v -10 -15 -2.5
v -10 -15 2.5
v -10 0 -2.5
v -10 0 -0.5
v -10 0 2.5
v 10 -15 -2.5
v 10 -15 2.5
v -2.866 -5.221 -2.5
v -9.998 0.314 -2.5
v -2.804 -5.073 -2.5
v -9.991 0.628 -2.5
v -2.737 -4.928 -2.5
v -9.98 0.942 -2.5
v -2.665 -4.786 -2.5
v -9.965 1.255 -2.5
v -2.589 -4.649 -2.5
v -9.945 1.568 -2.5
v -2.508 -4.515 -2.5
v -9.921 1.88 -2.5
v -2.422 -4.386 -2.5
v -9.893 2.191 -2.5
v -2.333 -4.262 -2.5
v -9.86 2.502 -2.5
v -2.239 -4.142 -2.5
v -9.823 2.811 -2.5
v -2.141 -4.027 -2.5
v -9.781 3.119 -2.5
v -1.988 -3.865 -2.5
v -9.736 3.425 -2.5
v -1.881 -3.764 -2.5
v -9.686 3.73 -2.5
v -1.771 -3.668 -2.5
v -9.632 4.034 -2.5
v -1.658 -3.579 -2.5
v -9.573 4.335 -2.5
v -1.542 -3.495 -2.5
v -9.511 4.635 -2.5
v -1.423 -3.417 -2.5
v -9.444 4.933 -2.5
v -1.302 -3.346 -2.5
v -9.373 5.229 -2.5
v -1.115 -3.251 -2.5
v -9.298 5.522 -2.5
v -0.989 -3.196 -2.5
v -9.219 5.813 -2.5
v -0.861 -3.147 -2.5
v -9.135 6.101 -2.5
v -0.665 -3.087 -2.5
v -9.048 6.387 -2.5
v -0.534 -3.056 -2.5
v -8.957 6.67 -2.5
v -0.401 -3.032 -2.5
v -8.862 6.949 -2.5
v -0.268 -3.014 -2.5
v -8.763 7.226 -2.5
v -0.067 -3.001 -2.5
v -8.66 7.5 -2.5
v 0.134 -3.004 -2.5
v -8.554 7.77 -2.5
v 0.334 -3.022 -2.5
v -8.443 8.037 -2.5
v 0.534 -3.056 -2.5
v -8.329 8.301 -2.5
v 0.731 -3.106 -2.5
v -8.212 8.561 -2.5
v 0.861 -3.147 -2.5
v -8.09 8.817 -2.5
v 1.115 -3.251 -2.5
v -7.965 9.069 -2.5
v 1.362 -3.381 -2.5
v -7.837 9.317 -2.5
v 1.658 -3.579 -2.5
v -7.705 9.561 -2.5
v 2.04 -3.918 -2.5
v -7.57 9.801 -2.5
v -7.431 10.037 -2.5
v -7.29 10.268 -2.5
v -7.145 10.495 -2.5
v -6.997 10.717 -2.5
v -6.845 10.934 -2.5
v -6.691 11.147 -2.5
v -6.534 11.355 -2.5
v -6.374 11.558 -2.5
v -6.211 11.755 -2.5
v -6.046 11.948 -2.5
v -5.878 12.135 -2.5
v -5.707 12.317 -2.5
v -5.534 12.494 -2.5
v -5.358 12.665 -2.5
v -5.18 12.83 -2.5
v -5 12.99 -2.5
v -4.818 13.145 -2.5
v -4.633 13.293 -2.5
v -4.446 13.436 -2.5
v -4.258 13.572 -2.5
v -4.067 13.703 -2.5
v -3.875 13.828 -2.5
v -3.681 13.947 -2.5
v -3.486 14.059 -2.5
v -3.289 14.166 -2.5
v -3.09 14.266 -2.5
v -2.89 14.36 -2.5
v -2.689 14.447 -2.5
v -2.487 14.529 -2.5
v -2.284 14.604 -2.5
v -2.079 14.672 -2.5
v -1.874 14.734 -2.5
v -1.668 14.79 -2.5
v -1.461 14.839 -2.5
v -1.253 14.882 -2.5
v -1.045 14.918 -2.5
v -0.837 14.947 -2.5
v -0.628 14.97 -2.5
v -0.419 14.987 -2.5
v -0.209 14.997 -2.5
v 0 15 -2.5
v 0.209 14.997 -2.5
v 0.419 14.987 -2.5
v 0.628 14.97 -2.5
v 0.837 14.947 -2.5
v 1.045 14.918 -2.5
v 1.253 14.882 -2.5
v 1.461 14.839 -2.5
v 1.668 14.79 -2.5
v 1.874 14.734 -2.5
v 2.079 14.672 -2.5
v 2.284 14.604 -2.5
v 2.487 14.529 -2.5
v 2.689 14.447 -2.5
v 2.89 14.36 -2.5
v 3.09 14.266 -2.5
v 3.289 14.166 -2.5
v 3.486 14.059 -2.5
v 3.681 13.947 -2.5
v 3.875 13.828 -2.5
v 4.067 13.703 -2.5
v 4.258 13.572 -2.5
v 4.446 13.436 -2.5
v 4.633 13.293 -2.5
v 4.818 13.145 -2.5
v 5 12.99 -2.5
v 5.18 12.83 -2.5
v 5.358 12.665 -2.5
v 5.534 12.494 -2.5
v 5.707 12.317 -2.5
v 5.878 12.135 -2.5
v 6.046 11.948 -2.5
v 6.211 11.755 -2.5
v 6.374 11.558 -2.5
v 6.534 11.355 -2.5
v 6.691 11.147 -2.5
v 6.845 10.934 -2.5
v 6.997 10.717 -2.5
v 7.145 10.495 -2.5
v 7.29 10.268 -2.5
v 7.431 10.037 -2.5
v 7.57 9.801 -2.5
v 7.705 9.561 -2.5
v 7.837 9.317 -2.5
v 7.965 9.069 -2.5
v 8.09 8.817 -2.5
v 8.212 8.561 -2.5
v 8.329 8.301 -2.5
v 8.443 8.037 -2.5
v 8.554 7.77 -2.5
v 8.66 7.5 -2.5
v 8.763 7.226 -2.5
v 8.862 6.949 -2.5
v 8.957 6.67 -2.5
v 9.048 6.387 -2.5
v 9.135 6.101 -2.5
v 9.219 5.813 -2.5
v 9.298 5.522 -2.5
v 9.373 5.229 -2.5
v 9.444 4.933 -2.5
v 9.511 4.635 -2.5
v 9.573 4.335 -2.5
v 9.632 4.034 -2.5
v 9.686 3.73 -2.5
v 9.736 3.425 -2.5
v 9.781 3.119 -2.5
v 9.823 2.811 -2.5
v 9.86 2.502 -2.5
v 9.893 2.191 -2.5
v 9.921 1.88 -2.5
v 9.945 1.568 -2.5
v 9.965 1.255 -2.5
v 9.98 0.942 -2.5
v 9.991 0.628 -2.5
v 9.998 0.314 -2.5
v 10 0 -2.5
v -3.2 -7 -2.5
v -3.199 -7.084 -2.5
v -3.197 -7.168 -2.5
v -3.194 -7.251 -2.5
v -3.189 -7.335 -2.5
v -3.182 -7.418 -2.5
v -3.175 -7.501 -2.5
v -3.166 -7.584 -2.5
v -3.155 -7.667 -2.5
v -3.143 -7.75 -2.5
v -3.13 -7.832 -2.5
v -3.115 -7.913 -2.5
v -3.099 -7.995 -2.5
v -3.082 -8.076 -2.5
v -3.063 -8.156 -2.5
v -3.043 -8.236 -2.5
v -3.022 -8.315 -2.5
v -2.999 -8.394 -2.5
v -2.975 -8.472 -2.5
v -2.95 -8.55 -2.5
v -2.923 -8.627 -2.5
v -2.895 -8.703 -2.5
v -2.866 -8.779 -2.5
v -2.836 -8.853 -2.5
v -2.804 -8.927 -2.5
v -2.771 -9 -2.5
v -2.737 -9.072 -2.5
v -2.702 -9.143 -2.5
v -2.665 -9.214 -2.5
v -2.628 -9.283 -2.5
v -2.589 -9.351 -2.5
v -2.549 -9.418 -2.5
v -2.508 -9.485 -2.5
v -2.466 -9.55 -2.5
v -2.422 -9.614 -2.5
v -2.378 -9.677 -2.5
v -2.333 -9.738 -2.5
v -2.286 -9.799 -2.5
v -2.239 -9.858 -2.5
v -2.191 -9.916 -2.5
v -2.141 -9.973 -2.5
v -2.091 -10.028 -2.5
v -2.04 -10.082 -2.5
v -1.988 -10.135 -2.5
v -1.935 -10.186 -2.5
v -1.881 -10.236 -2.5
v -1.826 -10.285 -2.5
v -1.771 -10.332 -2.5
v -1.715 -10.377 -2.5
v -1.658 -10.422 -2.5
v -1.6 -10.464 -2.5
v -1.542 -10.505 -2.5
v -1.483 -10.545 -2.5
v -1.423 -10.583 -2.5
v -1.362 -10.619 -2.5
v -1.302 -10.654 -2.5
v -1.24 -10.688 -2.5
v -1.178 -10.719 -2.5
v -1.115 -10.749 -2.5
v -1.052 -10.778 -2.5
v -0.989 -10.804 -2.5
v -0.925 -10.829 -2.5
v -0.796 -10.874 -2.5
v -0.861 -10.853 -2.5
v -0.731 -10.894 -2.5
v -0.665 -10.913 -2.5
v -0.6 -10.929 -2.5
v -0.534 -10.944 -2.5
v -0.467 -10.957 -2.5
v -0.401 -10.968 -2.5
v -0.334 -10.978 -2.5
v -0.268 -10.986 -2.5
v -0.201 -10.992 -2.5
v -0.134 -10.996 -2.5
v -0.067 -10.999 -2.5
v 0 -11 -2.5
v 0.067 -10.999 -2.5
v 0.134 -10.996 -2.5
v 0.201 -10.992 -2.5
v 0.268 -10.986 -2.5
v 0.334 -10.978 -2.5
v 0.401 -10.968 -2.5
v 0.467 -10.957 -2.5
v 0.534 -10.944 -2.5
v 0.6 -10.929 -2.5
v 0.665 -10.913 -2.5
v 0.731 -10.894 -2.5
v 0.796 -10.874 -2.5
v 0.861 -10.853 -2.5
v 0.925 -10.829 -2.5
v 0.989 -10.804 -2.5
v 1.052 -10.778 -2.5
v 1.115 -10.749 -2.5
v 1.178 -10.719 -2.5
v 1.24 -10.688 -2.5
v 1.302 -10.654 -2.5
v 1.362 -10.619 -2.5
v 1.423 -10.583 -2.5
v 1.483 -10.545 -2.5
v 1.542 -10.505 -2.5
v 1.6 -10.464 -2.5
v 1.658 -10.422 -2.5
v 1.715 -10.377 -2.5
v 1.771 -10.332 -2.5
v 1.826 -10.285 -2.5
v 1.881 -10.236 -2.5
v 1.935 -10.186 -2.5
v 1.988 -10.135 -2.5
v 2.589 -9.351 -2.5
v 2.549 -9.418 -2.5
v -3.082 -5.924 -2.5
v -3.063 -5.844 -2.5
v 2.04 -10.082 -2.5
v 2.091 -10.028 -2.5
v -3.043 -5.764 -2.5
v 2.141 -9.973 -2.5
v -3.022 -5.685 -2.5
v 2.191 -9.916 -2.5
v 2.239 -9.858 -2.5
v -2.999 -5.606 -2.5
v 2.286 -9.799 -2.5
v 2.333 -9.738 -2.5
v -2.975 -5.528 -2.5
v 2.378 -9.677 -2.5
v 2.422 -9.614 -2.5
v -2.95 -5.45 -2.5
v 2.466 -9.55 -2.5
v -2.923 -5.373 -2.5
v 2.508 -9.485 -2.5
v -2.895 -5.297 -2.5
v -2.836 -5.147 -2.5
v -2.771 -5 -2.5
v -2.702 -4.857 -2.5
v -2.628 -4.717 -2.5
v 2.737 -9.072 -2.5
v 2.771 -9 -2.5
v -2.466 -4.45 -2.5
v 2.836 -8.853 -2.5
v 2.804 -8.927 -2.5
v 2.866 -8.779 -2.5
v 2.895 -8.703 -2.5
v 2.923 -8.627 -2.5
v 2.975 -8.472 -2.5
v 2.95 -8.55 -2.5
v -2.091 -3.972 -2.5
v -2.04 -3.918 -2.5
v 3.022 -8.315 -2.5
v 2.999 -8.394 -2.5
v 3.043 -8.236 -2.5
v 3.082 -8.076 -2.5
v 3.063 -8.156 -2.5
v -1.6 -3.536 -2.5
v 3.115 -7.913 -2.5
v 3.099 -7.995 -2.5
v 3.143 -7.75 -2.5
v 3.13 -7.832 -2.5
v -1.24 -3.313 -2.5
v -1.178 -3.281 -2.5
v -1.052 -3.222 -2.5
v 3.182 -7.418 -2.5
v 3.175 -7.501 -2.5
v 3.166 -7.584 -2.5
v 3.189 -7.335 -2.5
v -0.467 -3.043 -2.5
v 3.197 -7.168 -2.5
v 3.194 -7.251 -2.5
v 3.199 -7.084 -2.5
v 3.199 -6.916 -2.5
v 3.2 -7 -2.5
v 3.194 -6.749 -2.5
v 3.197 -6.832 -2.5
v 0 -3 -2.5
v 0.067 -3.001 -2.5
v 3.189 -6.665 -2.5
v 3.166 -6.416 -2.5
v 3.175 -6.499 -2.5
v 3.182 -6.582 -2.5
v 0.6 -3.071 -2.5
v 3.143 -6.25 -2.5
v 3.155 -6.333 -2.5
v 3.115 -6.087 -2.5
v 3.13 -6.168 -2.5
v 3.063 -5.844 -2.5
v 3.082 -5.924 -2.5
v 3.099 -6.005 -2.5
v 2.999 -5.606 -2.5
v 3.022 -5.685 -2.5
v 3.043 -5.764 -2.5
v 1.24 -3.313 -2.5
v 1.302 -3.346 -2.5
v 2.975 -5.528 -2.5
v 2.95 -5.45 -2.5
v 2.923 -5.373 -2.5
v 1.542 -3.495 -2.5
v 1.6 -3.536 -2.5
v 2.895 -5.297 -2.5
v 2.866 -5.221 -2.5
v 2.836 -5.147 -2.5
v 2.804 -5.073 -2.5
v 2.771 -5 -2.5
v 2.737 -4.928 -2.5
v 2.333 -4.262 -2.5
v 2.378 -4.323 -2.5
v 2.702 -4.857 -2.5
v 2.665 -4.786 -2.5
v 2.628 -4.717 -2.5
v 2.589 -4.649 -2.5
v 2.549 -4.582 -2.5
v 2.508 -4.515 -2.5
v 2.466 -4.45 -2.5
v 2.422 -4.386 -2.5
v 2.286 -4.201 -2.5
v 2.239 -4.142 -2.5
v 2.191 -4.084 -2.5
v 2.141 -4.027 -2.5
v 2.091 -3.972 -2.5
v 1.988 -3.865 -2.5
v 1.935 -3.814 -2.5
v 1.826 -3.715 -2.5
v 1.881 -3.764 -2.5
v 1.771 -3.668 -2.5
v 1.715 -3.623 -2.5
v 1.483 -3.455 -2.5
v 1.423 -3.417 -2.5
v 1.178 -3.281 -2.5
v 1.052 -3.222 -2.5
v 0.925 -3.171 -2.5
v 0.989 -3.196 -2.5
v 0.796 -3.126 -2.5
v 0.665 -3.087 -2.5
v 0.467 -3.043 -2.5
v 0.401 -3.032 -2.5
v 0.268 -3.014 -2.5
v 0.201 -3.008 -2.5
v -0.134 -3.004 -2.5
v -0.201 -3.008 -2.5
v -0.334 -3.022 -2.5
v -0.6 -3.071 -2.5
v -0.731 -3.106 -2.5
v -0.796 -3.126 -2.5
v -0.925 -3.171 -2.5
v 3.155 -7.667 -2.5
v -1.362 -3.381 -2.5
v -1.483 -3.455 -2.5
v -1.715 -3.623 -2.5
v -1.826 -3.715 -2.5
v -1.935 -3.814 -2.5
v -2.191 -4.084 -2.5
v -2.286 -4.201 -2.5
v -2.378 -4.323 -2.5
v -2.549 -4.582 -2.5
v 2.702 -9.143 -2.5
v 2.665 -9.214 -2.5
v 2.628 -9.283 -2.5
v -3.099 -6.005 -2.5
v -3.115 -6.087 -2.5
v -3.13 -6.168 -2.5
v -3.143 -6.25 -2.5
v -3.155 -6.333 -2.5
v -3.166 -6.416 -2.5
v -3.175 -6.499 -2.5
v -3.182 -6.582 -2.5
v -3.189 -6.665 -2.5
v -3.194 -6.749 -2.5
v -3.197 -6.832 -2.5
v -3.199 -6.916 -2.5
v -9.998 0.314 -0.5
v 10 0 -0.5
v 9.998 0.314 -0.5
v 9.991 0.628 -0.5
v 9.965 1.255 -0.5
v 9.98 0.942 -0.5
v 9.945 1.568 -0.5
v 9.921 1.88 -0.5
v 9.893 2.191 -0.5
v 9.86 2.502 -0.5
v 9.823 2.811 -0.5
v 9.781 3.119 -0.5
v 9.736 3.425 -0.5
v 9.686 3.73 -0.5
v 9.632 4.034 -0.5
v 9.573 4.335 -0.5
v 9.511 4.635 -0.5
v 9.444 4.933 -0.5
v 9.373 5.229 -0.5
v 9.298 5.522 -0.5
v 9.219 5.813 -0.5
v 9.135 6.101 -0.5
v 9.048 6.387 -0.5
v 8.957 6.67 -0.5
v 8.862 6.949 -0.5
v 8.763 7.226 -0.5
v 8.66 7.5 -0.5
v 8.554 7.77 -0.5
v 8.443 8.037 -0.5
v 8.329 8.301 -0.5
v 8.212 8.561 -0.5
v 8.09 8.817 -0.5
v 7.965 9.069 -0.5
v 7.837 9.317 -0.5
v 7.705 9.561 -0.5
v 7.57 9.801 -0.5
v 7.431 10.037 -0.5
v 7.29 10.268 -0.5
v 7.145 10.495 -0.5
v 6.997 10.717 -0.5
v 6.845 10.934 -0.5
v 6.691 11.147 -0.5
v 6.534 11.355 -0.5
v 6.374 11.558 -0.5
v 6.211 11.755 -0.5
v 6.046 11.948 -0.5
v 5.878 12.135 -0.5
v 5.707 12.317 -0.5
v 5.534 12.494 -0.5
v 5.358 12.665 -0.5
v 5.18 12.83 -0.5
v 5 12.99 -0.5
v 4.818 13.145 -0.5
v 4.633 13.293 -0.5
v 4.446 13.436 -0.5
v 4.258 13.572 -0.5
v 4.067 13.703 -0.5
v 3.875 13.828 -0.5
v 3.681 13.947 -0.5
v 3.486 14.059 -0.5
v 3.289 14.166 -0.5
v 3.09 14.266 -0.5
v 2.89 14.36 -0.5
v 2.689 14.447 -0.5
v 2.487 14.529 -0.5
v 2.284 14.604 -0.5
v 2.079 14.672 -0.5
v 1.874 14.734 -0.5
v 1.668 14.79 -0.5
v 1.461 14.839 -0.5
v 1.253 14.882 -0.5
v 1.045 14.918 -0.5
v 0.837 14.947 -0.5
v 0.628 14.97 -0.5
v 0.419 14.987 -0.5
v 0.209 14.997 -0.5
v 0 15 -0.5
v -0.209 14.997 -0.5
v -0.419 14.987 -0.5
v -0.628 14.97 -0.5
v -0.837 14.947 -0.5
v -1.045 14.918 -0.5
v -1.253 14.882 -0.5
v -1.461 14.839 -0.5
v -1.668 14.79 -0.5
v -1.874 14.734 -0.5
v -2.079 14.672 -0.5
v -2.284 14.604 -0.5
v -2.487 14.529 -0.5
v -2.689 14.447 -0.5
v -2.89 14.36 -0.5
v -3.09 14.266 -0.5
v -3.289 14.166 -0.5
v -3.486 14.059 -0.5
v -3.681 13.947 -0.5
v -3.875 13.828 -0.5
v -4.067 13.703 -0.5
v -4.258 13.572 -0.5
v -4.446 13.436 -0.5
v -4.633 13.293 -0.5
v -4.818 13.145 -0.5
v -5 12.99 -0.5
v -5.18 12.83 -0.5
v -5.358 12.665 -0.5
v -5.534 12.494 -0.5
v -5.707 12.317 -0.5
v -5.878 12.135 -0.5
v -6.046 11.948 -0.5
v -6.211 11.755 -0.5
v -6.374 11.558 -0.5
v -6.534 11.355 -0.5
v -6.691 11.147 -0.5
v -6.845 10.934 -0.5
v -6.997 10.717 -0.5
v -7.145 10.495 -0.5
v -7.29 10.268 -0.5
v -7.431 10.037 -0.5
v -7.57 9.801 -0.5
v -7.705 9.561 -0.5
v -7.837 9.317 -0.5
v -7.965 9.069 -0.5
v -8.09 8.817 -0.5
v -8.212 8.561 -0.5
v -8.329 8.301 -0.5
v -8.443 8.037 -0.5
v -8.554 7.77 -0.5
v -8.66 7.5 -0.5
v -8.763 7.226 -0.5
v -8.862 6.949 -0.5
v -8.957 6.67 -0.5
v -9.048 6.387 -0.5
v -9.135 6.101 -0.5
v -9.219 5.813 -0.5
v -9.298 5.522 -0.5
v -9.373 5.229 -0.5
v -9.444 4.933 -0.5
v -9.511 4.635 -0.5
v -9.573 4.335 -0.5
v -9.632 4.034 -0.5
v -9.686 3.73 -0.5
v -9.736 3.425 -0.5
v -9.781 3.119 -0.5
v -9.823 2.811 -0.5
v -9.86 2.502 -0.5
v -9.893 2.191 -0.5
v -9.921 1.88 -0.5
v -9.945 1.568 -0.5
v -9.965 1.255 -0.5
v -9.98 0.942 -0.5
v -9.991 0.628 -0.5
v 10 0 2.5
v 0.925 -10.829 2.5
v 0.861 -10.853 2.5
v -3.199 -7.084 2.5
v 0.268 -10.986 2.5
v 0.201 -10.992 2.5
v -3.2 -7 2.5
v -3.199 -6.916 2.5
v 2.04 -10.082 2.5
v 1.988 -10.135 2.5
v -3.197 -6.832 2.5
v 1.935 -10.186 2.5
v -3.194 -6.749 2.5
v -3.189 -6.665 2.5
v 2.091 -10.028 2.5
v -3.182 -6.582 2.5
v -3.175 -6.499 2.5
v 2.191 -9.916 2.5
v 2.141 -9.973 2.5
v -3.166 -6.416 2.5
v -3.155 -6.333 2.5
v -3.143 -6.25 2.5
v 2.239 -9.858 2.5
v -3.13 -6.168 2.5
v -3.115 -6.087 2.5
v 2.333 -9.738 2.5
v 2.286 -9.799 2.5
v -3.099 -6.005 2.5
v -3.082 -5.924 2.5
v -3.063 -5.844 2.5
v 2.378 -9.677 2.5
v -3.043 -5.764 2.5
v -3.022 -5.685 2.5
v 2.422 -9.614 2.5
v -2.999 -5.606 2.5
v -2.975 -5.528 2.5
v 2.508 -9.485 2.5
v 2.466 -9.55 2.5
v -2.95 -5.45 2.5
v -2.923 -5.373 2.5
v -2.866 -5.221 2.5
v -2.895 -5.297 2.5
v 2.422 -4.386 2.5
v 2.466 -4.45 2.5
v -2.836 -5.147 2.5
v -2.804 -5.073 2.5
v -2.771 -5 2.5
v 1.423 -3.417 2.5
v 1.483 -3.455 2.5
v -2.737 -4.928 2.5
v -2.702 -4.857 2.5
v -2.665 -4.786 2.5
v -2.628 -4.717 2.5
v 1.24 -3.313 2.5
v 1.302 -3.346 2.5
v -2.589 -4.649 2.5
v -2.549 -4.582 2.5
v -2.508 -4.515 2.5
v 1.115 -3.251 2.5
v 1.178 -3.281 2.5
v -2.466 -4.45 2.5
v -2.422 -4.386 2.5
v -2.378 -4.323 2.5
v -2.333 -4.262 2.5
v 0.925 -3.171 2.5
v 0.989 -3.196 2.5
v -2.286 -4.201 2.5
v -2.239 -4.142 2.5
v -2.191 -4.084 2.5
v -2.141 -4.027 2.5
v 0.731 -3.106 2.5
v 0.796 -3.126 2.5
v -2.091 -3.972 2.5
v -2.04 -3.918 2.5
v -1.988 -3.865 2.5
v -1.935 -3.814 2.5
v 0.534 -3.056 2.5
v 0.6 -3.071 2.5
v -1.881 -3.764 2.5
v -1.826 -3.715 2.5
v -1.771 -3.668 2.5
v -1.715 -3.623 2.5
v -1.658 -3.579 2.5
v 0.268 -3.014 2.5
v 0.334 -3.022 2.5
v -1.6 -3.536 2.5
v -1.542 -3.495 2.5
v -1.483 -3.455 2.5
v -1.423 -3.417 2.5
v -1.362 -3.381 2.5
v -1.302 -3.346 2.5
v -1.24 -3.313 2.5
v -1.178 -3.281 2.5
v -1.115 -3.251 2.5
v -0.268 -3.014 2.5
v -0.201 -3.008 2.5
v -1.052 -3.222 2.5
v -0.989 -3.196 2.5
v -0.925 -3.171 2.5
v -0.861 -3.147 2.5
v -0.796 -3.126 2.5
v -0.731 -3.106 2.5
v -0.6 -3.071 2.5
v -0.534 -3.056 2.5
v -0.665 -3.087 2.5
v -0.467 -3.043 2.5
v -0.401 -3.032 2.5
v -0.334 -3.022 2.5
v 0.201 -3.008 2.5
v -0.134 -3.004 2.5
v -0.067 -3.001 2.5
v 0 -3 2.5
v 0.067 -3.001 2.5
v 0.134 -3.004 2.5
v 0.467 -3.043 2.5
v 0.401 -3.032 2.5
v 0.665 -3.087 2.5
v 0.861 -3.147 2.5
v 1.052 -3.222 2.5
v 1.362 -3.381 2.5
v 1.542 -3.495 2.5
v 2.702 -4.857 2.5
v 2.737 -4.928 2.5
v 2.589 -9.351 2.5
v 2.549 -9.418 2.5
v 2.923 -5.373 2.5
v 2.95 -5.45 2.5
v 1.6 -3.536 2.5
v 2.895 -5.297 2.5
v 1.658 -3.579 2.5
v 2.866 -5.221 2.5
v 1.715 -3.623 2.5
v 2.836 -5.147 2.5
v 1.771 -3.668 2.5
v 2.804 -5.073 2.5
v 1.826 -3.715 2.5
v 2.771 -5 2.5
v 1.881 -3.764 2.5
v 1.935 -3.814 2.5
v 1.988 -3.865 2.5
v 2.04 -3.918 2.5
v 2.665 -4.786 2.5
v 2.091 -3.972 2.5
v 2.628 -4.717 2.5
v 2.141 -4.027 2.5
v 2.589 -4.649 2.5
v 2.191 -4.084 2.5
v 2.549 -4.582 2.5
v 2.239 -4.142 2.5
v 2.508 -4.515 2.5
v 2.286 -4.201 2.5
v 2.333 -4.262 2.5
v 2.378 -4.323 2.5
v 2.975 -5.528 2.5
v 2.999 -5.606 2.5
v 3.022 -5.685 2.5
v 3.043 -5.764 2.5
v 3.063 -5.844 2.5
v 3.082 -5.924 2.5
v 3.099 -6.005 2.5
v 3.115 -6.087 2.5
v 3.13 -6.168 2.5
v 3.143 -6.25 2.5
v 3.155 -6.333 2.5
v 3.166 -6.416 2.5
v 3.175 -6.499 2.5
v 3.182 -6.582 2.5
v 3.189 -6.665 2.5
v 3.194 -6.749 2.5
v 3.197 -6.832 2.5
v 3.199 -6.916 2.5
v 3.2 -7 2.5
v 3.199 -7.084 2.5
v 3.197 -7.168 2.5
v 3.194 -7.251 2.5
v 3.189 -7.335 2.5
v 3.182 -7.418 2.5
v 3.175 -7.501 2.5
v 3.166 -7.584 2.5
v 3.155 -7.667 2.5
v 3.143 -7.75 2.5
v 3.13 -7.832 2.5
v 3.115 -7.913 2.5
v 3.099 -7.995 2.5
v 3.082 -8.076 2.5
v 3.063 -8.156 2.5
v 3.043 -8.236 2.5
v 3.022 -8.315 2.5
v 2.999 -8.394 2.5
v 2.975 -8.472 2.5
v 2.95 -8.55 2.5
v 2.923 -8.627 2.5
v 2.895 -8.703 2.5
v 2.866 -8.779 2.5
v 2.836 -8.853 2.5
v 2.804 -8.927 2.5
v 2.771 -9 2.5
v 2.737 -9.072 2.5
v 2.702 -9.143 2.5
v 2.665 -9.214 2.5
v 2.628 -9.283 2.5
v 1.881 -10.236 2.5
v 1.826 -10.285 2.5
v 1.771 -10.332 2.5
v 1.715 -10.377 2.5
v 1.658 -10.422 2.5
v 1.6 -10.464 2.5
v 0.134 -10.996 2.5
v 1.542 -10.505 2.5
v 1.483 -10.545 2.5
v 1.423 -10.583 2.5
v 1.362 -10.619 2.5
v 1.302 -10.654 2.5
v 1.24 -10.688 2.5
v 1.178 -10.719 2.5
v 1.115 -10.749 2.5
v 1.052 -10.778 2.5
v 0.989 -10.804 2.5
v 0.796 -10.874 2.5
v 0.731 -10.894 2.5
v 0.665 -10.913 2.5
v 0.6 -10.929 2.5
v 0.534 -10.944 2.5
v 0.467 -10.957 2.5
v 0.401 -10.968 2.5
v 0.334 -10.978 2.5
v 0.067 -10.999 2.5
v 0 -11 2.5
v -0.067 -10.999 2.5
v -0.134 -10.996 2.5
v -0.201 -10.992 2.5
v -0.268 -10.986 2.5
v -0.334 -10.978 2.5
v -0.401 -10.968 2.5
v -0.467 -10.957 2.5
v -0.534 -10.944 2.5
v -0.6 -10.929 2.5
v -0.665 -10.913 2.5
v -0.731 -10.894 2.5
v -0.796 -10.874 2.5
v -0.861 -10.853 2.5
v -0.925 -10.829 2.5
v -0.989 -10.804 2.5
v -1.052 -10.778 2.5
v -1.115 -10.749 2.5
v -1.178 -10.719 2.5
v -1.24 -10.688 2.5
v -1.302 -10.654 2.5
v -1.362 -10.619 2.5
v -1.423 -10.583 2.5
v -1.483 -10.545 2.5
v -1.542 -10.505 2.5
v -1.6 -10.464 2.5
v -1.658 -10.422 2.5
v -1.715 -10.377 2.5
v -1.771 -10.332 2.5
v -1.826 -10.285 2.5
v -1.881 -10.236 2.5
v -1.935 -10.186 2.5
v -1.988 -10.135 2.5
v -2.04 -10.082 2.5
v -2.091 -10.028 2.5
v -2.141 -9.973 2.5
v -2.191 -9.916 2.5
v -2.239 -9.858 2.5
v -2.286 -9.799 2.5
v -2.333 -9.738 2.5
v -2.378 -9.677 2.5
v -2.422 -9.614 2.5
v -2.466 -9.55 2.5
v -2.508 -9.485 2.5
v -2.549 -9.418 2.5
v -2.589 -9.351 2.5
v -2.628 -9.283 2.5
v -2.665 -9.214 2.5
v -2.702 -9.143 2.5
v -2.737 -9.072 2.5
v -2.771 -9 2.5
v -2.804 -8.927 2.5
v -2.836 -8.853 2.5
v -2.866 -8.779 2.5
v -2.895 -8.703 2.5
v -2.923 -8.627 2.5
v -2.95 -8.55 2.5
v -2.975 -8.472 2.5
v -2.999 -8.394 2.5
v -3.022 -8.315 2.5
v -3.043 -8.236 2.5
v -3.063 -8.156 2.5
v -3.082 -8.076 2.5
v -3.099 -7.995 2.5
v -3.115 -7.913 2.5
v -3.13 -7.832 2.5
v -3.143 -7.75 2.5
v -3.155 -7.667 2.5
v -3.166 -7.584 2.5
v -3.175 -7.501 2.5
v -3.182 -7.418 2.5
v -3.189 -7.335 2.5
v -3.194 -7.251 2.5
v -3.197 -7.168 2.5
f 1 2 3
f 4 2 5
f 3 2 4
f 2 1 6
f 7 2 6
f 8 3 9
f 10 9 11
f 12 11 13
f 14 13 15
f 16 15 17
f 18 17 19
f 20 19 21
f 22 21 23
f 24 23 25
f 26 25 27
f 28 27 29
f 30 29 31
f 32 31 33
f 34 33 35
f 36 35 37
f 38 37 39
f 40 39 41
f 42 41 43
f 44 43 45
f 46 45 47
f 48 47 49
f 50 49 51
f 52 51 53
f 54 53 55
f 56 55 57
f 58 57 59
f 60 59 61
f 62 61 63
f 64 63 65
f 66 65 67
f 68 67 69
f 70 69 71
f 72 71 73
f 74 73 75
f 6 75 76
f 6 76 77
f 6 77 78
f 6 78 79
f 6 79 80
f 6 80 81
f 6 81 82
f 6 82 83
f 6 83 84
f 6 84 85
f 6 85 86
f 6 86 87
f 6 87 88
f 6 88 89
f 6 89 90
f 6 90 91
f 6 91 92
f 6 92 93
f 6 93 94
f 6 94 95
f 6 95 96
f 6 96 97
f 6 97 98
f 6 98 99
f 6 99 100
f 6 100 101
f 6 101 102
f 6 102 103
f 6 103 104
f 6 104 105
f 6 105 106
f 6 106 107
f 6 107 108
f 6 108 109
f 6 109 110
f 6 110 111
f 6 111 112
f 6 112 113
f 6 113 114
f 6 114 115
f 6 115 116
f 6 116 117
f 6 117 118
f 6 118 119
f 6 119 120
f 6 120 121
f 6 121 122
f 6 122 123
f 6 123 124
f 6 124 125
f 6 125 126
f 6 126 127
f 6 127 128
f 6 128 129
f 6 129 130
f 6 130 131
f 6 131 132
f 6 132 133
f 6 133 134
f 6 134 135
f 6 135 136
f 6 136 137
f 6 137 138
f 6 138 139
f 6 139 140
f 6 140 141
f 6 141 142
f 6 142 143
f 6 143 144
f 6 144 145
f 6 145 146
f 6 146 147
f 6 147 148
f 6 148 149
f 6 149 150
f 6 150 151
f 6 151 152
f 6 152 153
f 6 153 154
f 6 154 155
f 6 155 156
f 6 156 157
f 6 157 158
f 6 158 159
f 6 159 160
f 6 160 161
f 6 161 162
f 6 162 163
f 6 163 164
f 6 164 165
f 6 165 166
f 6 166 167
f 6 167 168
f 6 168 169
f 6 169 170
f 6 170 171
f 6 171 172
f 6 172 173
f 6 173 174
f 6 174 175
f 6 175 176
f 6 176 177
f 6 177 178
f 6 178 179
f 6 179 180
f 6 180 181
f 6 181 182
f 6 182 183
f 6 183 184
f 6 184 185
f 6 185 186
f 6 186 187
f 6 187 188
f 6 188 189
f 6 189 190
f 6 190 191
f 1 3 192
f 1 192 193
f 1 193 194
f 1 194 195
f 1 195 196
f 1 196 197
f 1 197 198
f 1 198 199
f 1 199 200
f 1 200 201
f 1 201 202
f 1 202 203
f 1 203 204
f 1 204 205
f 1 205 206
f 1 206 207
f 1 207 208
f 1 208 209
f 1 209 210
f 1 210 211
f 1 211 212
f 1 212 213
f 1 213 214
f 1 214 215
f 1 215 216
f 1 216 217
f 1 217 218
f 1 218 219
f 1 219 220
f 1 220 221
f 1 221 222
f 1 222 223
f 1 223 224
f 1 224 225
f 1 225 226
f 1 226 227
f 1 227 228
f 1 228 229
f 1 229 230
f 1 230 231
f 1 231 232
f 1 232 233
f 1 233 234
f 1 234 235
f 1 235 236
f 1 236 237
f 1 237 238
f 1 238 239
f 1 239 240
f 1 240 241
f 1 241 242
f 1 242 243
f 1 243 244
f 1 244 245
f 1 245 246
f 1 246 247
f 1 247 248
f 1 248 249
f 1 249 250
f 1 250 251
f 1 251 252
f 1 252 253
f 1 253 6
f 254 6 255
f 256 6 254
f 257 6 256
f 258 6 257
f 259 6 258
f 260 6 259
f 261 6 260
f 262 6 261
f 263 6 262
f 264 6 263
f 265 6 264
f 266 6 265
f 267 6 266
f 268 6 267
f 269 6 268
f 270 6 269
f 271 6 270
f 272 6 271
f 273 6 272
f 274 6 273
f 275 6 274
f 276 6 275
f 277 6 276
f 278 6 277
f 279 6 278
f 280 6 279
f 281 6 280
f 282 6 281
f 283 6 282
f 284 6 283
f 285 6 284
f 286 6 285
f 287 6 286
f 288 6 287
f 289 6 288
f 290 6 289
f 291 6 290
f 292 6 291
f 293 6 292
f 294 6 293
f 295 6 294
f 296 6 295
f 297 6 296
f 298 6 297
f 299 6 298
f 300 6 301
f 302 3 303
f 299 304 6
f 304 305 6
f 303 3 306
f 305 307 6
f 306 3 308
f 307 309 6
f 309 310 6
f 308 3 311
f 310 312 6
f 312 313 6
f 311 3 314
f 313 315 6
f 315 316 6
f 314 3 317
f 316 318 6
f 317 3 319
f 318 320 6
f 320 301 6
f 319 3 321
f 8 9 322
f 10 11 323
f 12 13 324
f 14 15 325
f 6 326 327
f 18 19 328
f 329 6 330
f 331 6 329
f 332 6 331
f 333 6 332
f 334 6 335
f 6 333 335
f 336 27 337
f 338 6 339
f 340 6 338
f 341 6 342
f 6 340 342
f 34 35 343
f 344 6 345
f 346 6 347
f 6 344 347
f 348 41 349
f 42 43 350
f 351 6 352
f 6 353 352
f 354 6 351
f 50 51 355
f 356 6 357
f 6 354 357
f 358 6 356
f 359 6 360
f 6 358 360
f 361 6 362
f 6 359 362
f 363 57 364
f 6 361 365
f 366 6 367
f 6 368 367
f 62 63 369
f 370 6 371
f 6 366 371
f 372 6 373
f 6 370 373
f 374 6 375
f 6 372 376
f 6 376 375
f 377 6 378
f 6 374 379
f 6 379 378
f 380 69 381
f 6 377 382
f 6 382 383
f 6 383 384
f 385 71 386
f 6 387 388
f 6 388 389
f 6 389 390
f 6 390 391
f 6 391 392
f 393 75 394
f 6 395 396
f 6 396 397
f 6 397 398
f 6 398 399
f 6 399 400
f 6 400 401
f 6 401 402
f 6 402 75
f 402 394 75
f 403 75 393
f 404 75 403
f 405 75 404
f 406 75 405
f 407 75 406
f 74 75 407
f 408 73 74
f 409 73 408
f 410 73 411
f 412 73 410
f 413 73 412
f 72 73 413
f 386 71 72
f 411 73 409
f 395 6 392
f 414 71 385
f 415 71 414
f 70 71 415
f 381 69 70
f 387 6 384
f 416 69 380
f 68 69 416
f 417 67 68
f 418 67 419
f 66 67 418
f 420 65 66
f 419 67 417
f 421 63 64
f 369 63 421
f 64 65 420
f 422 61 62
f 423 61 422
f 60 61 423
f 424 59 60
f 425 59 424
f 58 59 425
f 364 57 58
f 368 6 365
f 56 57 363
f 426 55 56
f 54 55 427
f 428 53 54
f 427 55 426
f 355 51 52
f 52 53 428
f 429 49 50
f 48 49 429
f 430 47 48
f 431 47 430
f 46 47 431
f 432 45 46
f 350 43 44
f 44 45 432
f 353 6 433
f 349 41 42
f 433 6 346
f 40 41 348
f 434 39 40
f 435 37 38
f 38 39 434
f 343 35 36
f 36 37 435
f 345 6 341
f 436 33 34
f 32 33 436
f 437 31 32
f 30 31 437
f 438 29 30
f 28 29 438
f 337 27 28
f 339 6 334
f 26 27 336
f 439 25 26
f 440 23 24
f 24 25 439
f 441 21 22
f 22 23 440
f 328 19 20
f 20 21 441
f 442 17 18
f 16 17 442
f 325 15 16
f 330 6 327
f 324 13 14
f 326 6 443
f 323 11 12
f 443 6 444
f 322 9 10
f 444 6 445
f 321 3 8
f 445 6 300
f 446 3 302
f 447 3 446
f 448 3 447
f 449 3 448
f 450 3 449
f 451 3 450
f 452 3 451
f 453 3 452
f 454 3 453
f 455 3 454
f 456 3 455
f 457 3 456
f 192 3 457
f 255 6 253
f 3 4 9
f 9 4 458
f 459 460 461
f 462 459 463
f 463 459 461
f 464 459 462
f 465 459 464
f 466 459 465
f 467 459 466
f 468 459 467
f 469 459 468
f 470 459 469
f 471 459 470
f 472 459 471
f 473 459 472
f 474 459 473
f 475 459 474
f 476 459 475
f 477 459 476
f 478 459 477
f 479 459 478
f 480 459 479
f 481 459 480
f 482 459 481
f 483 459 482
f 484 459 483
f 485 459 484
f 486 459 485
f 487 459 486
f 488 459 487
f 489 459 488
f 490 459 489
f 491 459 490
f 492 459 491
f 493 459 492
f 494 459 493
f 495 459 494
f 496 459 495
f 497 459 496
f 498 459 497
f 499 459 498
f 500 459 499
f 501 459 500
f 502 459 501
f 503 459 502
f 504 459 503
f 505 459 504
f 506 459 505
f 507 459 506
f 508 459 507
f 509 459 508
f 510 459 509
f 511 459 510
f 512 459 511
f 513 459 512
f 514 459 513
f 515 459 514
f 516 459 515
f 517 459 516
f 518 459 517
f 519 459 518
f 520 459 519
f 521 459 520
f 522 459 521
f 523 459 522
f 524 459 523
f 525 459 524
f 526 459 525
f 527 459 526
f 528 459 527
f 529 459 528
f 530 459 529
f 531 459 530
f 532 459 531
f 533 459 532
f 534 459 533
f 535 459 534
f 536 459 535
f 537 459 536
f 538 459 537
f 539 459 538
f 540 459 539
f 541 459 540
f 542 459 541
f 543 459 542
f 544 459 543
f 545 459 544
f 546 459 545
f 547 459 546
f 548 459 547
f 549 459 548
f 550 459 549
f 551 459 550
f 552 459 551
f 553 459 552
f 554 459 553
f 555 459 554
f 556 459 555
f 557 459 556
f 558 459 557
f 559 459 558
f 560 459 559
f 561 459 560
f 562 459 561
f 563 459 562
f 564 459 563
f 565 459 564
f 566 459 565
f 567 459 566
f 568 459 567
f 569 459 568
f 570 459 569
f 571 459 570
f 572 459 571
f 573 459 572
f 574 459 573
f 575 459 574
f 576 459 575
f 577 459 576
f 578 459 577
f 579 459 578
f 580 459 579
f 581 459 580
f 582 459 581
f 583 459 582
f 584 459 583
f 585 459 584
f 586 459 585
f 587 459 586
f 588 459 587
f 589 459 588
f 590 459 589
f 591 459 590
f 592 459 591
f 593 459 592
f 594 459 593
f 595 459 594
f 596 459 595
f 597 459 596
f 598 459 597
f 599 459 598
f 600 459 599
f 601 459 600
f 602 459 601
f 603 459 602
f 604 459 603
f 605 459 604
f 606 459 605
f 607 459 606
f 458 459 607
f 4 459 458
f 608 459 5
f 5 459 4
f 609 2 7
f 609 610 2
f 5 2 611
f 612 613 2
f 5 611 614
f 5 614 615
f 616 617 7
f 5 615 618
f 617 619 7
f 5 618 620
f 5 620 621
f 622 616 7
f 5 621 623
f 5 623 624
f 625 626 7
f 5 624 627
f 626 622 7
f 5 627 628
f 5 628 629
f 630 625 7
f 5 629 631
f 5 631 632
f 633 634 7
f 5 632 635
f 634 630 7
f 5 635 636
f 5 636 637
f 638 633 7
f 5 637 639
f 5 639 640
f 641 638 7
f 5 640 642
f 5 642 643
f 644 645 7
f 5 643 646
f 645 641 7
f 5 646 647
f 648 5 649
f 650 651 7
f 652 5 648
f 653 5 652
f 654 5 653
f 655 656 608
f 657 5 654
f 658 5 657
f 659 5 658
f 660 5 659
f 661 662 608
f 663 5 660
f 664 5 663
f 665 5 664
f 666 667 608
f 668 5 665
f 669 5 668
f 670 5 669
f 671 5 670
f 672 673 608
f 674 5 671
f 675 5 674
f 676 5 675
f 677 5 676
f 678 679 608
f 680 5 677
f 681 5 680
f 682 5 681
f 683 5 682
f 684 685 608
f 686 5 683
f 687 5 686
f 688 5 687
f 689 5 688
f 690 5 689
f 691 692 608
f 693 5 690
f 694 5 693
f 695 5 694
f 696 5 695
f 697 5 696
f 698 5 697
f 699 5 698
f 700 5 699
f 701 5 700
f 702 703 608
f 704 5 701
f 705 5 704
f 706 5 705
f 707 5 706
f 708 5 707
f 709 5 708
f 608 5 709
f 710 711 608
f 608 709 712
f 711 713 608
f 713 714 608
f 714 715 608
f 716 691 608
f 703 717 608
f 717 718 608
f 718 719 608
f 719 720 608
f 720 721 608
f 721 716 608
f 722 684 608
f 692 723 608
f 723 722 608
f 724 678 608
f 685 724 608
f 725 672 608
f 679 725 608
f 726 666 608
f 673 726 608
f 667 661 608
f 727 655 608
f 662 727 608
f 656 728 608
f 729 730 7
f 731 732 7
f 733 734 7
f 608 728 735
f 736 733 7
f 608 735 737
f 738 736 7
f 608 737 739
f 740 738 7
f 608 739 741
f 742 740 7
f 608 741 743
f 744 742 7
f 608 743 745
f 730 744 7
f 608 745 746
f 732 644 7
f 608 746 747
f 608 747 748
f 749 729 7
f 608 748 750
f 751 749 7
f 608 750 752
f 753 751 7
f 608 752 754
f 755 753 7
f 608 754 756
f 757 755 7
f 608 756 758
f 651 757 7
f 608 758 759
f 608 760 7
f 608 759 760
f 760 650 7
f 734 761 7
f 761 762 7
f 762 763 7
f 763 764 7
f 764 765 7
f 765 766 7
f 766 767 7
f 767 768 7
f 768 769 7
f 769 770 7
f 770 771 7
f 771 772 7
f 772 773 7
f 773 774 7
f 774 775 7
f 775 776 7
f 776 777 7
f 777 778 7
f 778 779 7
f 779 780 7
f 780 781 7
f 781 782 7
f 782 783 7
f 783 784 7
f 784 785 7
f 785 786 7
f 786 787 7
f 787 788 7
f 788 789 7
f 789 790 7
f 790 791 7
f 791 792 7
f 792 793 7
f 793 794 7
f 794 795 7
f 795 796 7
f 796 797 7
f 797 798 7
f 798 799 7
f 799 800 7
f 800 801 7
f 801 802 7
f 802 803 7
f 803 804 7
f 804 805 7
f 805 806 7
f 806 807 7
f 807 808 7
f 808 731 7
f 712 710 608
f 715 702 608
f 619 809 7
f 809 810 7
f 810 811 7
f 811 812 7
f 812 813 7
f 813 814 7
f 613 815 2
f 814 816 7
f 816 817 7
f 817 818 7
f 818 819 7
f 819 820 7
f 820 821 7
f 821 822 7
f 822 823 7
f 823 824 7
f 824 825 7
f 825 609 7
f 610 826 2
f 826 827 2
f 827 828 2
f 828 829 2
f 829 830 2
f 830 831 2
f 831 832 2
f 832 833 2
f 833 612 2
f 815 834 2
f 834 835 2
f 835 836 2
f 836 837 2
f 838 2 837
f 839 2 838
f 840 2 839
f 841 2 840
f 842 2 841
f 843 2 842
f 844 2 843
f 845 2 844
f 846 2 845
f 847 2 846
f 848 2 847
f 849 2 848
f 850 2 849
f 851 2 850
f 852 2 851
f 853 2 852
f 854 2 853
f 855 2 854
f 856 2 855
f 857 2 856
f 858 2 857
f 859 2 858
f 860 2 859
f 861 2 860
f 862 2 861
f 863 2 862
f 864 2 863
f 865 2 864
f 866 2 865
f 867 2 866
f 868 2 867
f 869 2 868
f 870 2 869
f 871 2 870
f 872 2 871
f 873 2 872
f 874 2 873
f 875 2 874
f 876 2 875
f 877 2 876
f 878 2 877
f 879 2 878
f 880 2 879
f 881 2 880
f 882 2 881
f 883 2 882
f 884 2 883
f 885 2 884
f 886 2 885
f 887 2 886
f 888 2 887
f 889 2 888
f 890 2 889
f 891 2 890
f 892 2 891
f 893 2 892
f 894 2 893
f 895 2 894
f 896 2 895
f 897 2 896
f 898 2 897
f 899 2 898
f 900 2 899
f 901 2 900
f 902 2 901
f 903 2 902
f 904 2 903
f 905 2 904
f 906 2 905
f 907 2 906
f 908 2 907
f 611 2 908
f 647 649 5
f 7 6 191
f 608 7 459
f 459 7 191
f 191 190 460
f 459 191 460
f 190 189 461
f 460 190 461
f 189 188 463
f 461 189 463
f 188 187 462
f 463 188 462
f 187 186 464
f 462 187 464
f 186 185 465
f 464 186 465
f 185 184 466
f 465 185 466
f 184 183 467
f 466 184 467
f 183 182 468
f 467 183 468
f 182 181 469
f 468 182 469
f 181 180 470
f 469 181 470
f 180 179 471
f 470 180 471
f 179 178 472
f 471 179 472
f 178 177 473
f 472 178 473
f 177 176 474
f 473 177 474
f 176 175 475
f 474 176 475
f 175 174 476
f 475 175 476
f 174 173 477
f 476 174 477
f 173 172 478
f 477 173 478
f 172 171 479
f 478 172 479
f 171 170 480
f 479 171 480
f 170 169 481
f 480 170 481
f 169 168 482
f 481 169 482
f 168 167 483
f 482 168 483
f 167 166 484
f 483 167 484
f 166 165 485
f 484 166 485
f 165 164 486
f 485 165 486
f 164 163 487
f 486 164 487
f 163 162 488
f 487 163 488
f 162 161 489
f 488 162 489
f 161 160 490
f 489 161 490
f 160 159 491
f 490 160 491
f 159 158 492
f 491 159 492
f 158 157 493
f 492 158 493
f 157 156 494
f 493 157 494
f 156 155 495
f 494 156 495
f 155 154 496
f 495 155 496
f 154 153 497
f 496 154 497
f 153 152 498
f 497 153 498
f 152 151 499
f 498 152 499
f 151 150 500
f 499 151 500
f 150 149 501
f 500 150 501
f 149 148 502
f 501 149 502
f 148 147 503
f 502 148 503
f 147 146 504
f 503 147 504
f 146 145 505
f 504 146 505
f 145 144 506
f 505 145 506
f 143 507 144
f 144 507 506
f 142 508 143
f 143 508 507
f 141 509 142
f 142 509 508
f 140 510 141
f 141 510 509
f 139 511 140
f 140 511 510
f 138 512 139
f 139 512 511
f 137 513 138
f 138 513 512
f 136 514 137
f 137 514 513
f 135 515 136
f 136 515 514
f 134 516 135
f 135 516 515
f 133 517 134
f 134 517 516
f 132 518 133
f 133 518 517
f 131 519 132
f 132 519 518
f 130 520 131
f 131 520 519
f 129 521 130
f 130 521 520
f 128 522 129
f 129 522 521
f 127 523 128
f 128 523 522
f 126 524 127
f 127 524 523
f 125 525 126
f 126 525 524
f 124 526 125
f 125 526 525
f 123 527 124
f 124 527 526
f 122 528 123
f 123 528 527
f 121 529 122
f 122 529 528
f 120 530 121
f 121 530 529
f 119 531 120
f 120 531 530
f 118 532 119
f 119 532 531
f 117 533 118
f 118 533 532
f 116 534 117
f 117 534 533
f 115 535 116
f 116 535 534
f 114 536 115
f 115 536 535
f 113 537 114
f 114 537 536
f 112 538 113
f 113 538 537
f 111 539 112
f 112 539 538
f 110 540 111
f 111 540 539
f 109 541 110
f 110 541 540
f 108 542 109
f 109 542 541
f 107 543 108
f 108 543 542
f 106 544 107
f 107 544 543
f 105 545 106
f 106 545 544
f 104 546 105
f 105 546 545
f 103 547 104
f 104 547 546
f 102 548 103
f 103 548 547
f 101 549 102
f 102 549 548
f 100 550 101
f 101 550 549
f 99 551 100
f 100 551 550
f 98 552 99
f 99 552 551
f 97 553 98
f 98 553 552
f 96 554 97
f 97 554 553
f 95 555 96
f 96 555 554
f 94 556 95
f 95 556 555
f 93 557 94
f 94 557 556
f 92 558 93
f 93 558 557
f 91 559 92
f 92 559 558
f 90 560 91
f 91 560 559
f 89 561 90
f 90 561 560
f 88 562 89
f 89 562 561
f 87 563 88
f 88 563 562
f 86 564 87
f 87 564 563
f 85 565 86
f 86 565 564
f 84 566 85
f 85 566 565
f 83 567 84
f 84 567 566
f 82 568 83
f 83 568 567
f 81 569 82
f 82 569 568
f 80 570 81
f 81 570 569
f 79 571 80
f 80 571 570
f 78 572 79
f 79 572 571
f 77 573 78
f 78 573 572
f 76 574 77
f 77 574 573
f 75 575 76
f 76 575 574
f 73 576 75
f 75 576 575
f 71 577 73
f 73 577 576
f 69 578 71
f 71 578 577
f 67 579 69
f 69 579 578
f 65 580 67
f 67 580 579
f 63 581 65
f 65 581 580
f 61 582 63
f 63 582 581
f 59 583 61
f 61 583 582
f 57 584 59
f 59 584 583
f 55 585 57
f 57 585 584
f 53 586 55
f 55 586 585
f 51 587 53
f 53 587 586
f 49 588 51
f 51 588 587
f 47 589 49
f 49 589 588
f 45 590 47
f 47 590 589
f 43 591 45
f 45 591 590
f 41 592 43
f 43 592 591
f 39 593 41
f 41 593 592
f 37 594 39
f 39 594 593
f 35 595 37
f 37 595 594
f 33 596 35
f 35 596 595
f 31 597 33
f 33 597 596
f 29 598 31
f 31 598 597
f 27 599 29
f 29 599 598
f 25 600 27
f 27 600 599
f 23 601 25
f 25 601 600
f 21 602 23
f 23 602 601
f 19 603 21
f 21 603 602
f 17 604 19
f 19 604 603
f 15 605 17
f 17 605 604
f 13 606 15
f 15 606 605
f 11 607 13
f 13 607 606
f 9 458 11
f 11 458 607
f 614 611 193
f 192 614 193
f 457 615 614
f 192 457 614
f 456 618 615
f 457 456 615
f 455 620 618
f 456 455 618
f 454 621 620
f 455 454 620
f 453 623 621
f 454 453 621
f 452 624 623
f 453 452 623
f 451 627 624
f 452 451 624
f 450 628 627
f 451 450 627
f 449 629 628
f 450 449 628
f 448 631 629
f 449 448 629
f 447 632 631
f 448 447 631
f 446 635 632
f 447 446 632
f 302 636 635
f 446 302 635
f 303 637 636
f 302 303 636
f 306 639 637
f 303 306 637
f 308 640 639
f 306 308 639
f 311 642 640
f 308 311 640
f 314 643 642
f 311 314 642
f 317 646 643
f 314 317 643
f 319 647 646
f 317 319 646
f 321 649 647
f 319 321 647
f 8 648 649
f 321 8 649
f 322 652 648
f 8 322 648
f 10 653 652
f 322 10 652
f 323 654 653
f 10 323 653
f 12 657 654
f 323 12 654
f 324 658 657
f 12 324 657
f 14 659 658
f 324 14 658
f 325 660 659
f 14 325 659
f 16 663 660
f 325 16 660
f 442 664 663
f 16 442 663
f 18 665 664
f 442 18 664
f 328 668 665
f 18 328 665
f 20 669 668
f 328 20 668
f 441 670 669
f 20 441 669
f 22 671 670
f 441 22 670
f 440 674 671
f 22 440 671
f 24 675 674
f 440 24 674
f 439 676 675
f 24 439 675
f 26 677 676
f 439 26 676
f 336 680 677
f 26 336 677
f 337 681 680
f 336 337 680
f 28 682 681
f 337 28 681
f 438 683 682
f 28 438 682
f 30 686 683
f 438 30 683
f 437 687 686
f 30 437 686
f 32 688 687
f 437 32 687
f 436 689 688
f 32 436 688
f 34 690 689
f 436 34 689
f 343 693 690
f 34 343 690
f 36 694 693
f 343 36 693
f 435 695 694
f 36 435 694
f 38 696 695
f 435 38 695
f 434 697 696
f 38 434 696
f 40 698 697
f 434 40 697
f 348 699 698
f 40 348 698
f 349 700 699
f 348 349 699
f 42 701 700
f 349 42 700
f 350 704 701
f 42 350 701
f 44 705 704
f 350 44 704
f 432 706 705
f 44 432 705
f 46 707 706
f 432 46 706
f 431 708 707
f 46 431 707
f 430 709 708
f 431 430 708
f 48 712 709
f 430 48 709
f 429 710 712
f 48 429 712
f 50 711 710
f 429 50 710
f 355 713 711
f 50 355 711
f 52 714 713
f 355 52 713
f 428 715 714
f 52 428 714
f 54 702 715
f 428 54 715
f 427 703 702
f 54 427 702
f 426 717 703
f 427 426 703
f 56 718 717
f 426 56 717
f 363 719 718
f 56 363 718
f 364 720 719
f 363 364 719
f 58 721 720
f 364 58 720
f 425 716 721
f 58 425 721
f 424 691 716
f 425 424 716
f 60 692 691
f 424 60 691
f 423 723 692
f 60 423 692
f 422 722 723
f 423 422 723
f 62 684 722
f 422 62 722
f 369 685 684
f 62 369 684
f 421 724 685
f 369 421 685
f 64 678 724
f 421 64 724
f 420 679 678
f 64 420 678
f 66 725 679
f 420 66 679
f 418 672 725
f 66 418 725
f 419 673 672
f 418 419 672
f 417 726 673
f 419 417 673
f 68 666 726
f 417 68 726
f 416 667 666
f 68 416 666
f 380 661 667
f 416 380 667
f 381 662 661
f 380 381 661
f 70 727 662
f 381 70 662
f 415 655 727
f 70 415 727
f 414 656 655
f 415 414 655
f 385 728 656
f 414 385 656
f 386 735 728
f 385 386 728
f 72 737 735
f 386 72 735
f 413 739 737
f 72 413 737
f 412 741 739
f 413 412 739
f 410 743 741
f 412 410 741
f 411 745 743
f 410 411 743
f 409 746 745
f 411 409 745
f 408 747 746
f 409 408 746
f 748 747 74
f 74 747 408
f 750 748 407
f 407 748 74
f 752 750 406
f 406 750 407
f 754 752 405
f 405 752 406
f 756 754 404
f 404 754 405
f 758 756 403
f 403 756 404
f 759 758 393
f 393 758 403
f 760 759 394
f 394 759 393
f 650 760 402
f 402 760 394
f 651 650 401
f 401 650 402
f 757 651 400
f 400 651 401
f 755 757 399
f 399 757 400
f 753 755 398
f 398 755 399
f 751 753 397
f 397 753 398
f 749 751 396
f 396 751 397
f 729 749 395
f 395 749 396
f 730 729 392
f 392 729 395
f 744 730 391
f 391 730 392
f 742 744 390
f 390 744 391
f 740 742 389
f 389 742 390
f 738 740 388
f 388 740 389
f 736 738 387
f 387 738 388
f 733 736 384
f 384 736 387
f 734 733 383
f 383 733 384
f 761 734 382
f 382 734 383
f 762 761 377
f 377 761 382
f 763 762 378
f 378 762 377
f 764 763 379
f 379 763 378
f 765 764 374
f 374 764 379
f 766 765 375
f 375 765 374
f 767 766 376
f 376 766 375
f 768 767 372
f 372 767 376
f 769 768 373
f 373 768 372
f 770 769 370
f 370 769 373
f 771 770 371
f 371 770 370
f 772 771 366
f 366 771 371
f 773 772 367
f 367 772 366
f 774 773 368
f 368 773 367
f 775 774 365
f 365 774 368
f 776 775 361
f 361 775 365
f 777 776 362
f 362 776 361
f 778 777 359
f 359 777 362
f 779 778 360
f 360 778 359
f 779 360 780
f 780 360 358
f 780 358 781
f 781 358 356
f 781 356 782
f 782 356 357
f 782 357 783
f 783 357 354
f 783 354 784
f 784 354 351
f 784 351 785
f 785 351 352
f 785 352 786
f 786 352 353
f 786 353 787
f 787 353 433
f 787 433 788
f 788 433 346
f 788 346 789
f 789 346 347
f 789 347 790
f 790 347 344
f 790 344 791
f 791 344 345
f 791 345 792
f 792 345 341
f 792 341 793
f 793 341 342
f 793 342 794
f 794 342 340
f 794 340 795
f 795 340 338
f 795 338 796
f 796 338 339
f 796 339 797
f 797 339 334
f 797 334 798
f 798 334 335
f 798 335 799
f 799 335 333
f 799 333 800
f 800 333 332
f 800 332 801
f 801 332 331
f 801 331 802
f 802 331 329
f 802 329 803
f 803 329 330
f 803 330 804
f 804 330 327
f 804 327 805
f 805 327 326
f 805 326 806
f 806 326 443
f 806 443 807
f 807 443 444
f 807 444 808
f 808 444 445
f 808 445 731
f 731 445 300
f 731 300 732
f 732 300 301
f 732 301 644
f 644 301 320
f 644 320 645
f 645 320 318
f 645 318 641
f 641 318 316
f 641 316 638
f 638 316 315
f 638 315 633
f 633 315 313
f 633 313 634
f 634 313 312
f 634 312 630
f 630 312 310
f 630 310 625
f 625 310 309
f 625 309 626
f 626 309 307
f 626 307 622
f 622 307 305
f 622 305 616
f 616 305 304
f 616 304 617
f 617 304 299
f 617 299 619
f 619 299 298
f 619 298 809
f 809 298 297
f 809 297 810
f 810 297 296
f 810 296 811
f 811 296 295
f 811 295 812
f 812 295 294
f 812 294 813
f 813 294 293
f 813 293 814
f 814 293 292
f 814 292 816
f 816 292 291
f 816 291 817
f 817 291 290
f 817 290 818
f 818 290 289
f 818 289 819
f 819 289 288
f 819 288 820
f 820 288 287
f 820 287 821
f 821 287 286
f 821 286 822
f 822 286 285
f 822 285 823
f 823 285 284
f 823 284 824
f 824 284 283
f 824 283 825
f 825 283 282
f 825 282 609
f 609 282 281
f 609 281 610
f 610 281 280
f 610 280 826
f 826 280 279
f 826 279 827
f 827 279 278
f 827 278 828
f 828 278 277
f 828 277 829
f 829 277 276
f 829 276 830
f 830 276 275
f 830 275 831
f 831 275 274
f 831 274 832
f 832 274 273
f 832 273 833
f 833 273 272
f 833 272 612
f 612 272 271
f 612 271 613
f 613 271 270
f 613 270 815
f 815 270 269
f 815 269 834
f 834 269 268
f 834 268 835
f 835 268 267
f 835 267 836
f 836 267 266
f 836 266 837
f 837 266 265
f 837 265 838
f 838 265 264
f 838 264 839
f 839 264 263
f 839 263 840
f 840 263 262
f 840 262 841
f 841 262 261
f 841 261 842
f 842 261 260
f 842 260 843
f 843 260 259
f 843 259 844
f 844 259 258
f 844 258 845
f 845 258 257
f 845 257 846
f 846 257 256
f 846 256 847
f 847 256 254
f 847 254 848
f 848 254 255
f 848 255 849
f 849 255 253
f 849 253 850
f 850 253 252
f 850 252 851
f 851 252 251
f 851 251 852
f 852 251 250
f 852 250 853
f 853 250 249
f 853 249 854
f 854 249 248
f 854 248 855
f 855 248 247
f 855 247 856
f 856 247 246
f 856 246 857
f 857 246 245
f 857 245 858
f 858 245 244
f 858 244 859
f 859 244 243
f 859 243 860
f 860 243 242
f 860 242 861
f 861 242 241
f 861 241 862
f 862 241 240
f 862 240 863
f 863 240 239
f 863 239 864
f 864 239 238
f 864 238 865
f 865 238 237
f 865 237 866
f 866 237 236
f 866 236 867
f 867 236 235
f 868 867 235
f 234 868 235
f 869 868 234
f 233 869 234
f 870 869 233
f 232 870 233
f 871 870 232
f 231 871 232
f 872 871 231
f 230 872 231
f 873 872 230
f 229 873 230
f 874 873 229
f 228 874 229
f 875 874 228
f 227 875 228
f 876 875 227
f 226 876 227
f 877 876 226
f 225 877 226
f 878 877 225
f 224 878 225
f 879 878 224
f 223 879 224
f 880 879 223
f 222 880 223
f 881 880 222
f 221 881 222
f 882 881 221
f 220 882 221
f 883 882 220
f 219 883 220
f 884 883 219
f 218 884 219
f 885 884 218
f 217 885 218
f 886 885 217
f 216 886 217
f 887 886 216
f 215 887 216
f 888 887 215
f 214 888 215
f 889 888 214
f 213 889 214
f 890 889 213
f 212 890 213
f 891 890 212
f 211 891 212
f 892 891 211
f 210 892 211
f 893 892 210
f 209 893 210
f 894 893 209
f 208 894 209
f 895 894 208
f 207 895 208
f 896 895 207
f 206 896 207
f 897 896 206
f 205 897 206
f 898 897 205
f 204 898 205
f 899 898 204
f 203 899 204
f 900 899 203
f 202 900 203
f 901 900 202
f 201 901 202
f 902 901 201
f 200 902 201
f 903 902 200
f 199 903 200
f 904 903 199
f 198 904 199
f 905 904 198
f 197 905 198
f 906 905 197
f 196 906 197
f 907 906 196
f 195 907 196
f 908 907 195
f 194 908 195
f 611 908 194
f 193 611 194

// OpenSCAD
gSize=[20,30,5];
gDetail=300;

module Clamp()
{
	difference()
	{
		scale(gSize)
		union()
		{
			cylinder(r=1/2, $fn=gDetail, center=true);
			translate([0,-.25,0])
			cube([1,.5,1], center=true);
		}

// Drill hole.
		translate([0,-gSize.y/2+8,0])
// Scale it on the y to to make it "slideable" for a tight fit on the glass
		scale([1,1.25,1])
#		cylinder(r=3.2,h=40, center=true, $fn=gDetail);

// Tear out a chunk for the plate to sit on.
		translate([0,7.50,1])
		# cube([50, gSize.y-15,3], center=true);
	}
}


Clamp();
